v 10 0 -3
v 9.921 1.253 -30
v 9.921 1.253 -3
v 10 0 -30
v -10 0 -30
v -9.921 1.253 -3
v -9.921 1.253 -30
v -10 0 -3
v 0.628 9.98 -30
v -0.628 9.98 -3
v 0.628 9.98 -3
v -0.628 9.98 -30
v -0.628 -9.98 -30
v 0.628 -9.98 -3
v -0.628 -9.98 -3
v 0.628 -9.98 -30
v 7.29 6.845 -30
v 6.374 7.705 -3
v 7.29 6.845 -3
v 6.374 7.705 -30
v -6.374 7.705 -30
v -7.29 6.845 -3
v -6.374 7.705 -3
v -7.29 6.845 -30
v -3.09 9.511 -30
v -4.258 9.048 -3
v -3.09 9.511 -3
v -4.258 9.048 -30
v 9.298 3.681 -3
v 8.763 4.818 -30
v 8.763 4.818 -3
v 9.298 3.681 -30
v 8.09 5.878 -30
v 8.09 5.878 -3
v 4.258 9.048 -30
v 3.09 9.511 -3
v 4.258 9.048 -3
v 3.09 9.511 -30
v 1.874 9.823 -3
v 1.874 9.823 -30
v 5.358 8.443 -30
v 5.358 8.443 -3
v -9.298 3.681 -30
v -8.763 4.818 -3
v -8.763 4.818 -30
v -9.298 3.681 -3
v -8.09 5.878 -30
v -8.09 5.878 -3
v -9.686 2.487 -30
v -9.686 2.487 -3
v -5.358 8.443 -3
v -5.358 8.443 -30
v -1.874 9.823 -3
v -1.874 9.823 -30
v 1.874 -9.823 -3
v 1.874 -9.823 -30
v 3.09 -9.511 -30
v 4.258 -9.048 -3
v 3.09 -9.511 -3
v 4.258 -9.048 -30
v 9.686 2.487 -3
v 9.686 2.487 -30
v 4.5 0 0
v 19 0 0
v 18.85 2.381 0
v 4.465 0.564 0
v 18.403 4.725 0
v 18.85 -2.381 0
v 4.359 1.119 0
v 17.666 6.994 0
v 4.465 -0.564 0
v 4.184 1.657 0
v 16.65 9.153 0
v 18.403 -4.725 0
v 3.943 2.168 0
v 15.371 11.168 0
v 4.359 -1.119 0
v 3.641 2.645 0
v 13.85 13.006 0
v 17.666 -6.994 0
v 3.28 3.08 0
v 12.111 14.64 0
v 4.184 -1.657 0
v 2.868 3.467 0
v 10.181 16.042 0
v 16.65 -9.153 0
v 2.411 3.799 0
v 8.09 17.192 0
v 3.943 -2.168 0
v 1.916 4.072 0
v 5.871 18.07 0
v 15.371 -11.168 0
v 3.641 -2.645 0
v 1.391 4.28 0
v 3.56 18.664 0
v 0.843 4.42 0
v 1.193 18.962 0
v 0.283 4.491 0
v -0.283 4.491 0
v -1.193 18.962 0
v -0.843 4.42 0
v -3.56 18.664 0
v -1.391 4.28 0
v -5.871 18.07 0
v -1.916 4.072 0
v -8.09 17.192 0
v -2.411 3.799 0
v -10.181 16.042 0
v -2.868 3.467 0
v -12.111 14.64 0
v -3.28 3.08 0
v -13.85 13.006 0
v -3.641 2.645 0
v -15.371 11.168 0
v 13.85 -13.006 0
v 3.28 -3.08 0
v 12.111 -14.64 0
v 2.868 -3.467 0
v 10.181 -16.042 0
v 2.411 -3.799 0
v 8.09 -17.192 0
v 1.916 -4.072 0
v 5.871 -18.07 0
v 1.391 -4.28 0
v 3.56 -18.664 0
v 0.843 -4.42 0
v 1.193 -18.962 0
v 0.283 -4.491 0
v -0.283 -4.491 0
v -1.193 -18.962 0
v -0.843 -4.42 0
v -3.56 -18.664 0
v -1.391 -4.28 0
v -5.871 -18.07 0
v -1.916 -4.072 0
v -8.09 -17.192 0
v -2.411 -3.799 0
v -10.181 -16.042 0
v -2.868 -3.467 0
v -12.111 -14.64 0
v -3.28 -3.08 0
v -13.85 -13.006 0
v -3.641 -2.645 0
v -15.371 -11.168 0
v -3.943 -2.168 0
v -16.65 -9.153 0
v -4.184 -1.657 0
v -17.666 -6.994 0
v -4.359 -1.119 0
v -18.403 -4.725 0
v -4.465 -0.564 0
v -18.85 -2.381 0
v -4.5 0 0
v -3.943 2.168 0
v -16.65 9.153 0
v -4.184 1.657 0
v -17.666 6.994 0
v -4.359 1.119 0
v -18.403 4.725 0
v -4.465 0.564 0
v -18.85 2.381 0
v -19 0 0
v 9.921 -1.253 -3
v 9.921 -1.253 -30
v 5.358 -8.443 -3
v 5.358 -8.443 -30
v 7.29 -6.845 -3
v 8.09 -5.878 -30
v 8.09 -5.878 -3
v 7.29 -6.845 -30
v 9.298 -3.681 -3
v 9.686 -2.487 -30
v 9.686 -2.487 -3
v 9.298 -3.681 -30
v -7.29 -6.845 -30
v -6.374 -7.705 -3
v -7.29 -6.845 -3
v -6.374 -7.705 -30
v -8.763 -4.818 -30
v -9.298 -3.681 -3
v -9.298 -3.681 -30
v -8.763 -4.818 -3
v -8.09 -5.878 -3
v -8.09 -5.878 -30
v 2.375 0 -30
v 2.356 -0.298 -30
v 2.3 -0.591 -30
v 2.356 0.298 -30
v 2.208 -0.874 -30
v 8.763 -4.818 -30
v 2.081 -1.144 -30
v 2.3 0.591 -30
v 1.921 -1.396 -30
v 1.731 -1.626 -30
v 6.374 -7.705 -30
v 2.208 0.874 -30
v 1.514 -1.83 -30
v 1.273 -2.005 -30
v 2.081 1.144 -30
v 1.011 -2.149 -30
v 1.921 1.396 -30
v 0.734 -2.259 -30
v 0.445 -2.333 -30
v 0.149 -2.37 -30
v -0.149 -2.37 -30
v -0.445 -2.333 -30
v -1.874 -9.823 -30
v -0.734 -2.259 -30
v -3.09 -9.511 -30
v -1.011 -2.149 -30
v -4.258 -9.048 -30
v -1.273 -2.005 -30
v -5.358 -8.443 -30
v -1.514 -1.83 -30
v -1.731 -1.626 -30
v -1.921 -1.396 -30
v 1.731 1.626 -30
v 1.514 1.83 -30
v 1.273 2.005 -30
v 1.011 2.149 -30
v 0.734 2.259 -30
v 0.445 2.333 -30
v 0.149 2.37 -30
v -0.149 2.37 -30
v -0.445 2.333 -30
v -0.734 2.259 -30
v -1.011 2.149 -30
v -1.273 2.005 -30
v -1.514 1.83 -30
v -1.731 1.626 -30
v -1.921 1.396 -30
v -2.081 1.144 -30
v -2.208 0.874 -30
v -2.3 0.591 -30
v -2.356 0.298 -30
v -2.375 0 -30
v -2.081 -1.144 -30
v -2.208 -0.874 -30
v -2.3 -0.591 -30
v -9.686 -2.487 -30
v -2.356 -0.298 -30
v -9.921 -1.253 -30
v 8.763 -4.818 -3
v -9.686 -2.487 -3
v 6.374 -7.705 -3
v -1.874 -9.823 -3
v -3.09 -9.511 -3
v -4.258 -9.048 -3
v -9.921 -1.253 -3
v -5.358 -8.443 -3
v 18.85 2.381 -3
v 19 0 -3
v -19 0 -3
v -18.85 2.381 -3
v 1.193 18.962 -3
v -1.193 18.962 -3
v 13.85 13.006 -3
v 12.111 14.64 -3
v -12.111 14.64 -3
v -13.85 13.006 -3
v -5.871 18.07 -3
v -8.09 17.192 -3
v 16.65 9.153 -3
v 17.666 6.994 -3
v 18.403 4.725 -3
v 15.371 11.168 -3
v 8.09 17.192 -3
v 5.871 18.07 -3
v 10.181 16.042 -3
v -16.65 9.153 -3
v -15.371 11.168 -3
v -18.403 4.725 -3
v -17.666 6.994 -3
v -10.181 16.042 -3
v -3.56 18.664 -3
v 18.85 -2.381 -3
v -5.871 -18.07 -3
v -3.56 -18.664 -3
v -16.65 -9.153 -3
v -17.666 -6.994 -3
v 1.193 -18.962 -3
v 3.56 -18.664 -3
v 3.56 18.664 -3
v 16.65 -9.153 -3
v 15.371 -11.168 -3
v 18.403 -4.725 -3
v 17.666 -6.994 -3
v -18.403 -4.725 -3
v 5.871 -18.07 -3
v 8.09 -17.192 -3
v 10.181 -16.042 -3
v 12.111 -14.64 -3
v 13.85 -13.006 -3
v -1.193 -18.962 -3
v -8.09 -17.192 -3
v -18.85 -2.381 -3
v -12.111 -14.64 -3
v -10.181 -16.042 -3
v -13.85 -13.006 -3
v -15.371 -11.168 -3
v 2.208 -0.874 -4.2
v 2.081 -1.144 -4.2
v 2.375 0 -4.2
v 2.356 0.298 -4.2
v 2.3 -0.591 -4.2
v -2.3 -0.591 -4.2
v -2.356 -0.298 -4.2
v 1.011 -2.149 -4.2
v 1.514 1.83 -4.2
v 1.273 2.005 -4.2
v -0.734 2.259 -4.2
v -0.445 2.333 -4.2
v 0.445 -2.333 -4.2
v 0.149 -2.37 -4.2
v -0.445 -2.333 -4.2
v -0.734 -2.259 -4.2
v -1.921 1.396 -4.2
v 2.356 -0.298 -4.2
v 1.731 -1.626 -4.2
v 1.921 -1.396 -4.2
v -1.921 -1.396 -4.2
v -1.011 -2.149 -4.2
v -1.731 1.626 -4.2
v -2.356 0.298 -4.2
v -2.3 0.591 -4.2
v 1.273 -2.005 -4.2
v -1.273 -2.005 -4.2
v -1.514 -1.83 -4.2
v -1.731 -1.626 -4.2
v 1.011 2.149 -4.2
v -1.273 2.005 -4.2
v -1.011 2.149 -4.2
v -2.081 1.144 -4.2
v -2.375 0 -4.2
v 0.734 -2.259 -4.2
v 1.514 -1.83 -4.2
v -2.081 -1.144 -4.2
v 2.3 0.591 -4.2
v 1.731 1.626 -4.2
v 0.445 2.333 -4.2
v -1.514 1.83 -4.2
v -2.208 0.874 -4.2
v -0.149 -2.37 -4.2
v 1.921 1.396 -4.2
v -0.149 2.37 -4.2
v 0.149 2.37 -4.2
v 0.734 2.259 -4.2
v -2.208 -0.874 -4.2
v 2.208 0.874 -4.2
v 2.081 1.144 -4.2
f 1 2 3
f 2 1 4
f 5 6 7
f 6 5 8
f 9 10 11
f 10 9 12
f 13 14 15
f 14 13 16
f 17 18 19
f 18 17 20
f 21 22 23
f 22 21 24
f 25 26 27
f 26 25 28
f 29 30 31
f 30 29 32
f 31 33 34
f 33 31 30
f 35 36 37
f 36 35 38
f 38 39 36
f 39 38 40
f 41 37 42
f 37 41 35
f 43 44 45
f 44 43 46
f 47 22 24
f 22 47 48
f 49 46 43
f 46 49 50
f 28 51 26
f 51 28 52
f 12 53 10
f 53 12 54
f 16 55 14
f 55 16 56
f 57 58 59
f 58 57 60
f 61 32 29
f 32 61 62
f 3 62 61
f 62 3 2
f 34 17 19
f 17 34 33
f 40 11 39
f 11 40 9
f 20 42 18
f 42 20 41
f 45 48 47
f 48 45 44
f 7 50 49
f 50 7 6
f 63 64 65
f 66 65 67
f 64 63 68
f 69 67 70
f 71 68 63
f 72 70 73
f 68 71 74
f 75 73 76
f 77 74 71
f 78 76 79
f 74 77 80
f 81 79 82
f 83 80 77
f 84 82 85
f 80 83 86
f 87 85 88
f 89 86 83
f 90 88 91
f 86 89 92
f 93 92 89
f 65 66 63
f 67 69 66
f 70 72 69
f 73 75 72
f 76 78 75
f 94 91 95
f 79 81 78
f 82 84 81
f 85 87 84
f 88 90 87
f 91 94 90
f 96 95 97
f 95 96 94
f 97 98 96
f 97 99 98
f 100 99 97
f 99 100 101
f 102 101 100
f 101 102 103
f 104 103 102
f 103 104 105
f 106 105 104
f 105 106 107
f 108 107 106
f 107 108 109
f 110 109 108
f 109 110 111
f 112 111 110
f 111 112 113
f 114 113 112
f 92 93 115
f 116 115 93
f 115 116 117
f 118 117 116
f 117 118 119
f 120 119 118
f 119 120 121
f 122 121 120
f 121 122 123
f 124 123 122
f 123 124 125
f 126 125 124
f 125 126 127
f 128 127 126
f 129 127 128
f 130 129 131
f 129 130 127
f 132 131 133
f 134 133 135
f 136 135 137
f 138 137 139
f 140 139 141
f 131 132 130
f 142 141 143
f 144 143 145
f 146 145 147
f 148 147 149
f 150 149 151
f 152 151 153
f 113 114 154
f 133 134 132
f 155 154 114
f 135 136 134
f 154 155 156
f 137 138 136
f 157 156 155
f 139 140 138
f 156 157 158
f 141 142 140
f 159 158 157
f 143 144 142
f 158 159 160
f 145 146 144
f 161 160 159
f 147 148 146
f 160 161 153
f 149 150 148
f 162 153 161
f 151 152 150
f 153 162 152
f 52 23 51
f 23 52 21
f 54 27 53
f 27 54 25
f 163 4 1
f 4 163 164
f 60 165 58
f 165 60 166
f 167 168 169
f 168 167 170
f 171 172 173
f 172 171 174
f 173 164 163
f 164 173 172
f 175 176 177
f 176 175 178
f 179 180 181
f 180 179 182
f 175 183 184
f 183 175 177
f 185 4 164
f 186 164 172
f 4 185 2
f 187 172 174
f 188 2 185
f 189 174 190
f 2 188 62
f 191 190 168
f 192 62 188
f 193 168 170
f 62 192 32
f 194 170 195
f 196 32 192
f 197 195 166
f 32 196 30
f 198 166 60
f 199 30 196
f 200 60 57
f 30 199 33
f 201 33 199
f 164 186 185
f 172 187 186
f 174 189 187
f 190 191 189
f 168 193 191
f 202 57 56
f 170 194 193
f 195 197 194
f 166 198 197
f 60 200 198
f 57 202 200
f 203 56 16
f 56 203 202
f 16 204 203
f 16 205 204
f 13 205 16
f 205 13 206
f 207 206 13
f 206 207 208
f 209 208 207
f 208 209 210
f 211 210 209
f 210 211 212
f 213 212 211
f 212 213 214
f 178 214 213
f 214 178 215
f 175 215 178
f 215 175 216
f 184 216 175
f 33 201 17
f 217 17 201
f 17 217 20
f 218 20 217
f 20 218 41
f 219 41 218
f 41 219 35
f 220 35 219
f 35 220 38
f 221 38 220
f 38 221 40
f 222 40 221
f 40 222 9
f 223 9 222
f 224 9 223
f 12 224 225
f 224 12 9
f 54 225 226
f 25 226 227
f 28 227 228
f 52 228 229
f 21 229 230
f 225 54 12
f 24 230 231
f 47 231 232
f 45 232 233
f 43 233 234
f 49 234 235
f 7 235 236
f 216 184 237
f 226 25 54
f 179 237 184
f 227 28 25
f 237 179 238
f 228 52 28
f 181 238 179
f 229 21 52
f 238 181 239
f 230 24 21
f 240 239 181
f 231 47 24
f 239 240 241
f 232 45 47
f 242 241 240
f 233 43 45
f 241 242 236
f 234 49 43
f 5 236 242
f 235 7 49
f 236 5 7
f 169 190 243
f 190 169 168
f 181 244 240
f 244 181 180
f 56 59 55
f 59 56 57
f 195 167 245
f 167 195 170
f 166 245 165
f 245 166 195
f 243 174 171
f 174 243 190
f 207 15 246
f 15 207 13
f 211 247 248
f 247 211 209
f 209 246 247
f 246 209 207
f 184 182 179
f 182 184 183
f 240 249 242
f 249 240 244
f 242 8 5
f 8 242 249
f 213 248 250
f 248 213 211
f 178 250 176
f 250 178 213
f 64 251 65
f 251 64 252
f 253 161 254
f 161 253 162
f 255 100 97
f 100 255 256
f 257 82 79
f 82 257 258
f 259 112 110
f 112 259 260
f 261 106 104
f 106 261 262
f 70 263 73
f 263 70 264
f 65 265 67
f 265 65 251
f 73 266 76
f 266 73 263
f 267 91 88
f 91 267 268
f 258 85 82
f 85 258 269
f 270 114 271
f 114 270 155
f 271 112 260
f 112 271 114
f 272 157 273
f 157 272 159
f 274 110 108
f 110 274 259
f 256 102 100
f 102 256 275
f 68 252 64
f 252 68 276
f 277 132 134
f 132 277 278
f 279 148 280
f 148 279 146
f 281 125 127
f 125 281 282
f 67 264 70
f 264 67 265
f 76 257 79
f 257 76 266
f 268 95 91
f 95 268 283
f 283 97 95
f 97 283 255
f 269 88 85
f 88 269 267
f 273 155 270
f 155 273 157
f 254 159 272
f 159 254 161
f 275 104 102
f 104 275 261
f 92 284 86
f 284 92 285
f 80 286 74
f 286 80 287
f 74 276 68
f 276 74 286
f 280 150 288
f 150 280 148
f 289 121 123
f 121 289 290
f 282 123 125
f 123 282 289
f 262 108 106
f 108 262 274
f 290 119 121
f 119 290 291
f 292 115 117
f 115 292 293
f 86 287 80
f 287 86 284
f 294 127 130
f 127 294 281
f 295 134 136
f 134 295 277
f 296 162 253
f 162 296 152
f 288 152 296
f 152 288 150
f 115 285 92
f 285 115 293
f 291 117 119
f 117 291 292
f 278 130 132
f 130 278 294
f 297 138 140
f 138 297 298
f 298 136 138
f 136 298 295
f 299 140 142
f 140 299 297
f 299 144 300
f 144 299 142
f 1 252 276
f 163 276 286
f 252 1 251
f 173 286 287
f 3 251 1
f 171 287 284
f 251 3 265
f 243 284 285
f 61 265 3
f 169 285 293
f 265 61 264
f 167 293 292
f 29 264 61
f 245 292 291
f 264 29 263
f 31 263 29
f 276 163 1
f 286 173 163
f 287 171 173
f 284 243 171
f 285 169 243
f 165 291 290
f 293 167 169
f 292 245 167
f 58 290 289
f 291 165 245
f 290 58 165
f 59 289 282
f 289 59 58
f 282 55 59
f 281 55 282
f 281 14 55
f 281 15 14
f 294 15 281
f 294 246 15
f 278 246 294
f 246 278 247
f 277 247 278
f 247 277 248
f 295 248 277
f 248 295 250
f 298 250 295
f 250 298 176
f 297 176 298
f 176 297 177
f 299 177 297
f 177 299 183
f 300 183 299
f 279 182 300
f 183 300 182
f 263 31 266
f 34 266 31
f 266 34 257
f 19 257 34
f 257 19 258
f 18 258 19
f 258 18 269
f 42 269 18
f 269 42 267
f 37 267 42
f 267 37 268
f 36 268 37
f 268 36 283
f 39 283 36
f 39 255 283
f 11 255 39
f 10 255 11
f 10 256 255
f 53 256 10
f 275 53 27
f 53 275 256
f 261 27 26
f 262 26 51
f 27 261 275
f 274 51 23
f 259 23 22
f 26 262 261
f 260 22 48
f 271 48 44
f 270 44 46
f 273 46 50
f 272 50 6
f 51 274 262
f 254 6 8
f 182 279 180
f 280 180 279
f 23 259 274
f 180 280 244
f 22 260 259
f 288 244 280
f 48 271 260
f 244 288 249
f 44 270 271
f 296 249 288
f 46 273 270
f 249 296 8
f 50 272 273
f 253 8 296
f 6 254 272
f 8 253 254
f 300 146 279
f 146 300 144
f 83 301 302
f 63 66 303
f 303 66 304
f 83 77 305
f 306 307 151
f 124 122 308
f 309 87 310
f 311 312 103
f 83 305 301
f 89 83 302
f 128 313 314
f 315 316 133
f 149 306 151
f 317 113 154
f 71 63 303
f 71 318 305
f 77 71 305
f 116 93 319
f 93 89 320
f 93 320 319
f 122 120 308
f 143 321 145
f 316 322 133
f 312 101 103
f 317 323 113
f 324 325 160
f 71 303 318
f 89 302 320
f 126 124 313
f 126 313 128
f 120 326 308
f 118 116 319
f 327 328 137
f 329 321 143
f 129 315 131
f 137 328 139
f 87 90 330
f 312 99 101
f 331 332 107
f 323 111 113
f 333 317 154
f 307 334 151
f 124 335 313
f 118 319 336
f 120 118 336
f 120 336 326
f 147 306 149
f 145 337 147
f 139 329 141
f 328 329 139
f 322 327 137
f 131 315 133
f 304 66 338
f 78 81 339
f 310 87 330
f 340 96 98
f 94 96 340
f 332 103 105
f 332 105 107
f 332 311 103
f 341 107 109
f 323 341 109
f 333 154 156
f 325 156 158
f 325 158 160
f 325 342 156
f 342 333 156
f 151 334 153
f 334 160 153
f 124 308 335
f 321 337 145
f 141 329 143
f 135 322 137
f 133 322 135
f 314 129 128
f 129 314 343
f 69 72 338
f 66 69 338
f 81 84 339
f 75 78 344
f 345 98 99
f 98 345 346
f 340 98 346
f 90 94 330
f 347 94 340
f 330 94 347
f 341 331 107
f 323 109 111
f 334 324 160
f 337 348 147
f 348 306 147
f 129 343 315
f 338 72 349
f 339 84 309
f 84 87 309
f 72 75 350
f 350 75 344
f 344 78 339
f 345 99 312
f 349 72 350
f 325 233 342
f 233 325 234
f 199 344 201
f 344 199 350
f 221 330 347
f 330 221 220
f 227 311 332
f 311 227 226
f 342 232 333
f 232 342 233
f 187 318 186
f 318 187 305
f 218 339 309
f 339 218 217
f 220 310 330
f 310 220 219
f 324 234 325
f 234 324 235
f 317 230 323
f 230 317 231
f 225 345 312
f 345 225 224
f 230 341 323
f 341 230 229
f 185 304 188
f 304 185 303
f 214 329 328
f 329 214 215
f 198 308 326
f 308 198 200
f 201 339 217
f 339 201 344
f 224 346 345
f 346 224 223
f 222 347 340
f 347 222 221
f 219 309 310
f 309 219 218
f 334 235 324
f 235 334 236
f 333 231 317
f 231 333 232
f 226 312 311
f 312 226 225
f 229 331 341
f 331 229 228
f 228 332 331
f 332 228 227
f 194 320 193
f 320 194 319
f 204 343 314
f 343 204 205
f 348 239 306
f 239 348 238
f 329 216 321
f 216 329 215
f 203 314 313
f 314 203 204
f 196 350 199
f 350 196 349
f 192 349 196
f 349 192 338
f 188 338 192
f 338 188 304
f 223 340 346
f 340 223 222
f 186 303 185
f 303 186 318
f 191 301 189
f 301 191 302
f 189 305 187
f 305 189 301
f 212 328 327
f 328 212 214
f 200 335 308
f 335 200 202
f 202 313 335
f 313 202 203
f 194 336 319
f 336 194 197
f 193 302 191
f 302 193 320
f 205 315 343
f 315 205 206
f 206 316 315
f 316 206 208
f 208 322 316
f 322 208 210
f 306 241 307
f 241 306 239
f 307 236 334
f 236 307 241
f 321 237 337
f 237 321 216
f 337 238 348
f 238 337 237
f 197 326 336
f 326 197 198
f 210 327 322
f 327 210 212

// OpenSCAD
$fn = 50;


difference() {
	union() {
		translate(v = [0, 0, -30.0000000000]) {
			cylinder(h = 30, r = 10.0000000000);
		}
		translate(v = [0, 0, -3.0000000000]) {
			cylinder(h = 3, r = 19.0000000000);
		}
	}
	union() {
		translate(v = [0, 0, 0]) {
			rotate(a = [0, 0, 0]) {
				difference() {
					union() {
						#translate(v = [0, 0, -30.0000000000]) {
							cylinder(h = 30, r = 2.2500000000);
						}
						#translate(v = [0, 0, -4.2000000000]) {
							cylinder(h = 4.2000000000, r1 = 2.3750000000, r2 = 4.5000000000);
						}
						#translate(v = [0, 0, -30.0000000000]) {
							cylinder(h = 30, r = 2.3750000000);
						}
						#translate(v = [0, 0, -30.0000000000]) {
							cylinder(h = 30, r = 2.2500000000);
						}
					}
					union();
				}
			}
		}
	}
}
